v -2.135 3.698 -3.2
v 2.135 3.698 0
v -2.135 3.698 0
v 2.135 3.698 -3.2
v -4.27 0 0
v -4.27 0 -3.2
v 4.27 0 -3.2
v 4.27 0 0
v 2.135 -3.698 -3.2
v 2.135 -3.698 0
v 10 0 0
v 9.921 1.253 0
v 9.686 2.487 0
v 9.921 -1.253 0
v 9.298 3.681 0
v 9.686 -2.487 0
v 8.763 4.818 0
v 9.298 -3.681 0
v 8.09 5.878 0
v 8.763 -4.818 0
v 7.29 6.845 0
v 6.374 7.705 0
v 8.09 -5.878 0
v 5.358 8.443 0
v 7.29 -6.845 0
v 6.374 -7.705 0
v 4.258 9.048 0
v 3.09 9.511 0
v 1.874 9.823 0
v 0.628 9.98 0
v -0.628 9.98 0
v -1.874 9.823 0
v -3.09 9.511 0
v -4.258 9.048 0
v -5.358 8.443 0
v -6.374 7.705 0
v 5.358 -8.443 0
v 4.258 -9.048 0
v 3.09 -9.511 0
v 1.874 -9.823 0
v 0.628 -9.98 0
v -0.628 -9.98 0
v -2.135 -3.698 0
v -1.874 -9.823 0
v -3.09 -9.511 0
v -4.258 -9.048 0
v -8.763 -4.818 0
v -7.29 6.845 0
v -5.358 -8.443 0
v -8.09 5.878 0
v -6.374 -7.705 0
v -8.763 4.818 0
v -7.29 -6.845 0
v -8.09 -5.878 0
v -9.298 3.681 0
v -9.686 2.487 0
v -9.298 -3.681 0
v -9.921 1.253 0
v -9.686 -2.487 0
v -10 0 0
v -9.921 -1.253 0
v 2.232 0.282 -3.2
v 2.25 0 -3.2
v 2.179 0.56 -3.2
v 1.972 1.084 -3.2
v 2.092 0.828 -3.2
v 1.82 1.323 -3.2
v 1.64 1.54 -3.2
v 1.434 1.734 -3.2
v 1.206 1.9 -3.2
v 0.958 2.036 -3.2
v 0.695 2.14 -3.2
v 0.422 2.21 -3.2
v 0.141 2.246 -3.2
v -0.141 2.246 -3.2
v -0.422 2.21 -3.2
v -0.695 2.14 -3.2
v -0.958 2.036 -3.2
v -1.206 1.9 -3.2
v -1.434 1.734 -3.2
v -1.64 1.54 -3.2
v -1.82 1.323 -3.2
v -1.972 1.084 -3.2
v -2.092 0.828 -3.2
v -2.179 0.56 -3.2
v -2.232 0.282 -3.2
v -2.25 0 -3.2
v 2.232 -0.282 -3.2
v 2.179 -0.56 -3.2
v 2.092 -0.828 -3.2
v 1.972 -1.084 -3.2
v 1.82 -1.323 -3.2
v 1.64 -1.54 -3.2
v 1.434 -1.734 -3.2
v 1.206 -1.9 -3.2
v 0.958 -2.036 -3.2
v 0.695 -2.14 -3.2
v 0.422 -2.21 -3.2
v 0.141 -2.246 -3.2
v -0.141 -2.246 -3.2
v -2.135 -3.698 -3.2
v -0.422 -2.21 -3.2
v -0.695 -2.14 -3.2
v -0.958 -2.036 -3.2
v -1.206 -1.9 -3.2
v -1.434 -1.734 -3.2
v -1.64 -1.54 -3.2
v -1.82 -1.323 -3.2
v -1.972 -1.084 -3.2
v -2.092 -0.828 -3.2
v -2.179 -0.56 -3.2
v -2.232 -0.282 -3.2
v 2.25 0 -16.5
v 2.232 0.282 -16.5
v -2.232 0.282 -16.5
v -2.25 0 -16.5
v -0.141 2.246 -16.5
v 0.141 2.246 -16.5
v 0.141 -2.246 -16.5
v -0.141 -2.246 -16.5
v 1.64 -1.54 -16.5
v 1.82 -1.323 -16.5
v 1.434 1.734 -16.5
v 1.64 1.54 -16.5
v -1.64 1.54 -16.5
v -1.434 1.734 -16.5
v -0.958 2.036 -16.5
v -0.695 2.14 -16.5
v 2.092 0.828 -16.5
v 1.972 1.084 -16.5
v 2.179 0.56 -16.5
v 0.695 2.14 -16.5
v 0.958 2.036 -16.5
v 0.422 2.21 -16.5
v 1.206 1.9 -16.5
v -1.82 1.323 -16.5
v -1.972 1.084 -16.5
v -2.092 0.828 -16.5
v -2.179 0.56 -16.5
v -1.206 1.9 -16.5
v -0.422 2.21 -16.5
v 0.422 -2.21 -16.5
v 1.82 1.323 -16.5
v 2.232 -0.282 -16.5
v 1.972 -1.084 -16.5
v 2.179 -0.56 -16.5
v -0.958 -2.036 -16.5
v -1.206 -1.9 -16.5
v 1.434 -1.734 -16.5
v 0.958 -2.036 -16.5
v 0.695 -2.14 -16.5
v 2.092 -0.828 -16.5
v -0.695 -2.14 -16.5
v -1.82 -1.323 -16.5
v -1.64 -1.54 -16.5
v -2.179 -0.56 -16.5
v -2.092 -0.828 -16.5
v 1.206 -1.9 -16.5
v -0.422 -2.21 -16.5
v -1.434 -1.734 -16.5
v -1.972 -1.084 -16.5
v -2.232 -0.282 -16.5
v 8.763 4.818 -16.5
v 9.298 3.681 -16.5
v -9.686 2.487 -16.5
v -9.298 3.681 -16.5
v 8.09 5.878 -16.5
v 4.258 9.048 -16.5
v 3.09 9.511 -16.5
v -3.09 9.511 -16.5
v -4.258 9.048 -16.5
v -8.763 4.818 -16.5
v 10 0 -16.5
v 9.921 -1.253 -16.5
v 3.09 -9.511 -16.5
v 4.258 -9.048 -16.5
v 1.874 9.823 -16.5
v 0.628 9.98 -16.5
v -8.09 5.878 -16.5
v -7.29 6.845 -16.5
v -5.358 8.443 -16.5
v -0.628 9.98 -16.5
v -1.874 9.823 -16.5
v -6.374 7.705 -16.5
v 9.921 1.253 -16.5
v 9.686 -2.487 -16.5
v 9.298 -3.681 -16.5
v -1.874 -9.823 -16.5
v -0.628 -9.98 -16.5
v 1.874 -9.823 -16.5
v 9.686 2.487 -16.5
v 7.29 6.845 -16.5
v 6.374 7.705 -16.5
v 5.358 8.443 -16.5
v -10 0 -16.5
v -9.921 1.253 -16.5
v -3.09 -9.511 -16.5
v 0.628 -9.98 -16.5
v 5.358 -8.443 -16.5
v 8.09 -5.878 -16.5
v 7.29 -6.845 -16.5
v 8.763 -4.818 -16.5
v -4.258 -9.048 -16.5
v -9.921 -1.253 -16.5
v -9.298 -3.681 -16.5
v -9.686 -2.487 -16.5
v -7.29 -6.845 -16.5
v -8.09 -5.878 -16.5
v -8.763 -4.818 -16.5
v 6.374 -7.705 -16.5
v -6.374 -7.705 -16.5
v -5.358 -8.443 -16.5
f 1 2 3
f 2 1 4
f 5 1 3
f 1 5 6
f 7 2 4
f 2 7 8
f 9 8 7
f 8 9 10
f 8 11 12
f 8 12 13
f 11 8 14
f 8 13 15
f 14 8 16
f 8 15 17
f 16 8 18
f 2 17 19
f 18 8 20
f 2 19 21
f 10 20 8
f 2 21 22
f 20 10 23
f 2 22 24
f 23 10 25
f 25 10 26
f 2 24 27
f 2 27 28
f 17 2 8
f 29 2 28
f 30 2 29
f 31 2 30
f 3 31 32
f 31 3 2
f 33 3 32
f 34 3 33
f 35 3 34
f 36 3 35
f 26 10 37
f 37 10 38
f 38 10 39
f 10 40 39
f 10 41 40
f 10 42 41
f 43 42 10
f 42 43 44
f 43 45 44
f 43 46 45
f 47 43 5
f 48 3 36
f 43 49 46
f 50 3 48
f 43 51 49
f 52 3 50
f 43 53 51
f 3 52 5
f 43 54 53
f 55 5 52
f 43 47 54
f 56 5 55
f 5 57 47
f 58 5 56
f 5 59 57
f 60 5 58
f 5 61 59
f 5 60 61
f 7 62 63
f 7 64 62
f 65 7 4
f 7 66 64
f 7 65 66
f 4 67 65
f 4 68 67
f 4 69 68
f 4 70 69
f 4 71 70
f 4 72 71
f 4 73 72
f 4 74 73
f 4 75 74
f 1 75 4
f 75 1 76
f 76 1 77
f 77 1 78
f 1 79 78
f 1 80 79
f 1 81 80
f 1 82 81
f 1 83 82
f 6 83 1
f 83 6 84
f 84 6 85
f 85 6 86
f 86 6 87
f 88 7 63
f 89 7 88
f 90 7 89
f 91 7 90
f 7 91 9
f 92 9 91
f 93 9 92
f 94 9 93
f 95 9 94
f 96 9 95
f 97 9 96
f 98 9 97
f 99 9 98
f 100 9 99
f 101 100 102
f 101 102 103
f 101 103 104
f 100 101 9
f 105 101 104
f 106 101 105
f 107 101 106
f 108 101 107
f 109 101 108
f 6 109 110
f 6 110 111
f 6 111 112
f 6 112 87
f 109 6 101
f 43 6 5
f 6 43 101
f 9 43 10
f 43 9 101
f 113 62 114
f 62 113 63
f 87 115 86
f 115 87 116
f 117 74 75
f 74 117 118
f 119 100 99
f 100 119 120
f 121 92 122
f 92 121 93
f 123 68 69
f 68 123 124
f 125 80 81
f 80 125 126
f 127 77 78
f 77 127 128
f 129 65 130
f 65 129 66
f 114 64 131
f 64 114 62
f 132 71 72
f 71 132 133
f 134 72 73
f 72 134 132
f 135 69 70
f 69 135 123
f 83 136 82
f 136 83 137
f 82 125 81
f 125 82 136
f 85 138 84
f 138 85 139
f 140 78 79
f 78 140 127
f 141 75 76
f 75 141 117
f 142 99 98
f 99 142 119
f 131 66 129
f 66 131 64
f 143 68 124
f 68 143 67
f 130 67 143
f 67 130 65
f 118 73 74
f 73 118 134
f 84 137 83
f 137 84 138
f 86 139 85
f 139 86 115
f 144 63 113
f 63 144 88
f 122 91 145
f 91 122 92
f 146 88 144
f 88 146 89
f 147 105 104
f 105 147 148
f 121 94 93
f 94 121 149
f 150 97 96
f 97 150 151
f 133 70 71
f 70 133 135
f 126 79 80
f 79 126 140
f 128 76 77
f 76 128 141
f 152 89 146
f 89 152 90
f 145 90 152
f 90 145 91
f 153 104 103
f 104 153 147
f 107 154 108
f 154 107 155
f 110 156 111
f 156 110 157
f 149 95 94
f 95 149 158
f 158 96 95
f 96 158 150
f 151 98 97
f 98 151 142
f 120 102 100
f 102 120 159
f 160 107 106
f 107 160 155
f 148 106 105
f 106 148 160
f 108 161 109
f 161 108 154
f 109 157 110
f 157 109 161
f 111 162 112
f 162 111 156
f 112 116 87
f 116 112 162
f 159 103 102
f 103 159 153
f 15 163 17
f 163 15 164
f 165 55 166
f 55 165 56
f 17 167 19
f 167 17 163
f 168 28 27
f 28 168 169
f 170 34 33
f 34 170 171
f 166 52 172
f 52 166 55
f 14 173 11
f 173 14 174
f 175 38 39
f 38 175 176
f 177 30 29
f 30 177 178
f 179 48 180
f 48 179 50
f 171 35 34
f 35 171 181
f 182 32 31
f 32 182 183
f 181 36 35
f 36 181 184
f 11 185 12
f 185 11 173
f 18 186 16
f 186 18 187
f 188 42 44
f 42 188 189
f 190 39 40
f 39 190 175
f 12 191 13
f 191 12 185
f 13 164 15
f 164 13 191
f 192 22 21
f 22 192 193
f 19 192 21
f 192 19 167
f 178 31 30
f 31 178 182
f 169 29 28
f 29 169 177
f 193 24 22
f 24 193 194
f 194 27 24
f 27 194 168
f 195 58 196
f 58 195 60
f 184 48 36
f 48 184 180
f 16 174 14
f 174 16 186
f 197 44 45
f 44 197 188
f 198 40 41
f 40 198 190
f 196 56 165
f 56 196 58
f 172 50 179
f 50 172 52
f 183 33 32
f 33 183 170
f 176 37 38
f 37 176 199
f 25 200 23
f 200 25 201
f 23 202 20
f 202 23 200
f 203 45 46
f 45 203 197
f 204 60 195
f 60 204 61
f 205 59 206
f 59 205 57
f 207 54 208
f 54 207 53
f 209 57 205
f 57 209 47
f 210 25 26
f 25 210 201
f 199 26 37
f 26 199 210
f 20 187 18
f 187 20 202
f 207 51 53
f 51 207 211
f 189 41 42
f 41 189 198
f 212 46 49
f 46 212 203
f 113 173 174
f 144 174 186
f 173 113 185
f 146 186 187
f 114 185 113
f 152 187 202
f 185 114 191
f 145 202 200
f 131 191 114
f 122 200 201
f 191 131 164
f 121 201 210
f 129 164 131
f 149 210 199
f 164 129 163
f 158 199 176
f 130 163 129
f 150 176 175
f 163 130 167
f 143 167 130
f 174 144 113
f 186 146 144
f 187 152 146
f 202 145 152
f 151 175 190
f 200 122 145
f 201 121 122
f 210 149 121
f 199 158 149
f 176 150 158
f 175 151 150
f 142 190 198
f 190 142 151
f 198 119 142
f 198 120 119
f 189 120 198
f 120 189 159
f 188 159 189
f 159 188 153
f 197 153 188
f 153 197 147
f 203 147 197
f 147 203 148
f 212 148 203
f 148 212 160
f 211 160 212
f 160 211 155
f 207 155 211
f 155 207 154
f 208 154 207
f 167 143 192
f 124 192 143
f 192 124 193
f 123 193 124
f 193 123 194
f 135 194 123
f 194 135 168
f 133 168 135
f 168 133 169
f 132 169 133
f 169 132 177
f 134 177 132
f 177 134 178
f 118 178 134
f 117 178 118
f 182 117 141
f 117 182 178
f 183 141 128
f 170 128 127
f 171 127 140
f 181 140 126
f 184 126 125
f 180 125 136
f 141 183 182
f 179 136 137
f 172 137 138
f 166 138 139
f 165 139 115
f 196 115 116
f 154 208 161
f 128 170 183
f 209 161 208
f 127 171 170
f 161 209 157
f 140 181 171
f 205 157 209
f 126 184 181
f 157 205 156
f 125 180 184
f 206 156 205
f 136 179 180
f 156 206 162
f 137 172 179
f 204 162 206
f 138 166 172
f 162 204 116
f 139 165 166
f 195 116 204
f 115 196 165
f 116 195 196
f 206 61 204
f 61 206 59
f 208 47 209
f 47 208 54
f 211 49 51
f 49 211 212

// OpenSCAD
$fn = 50;

difference() {
	union() {
		translate(v = [0, 0, -16.5]) {
			cylinder(h = 16.5, r = 10.0);
		}
	}
	union() {
		translate(v = [0, 0, 0]) {
			rotate(a = [0, 0, 0]) {
				difference() {
					union() {
						translate(v = [0, 0, -3.2]) {
							linear_extrude(height = 3.2) {
								polygon(points = [[4.2698, 0.0], [2.1349000000000005, 3.697755269078796], [-2.134899999999999, 3.6977552690787965], [-4.2698, 5.228996902999369e-16], [-2.134900000000002, -3.6977552690787956], [2.1348999999999974, -3.697755269078798]]);
							}
						}
					}
					union();
				}
			}
		}
		#translate(v = [0, 0, -100.0]) {
			cylinder(h = 200, r = 2.25);
		}
	}
}
